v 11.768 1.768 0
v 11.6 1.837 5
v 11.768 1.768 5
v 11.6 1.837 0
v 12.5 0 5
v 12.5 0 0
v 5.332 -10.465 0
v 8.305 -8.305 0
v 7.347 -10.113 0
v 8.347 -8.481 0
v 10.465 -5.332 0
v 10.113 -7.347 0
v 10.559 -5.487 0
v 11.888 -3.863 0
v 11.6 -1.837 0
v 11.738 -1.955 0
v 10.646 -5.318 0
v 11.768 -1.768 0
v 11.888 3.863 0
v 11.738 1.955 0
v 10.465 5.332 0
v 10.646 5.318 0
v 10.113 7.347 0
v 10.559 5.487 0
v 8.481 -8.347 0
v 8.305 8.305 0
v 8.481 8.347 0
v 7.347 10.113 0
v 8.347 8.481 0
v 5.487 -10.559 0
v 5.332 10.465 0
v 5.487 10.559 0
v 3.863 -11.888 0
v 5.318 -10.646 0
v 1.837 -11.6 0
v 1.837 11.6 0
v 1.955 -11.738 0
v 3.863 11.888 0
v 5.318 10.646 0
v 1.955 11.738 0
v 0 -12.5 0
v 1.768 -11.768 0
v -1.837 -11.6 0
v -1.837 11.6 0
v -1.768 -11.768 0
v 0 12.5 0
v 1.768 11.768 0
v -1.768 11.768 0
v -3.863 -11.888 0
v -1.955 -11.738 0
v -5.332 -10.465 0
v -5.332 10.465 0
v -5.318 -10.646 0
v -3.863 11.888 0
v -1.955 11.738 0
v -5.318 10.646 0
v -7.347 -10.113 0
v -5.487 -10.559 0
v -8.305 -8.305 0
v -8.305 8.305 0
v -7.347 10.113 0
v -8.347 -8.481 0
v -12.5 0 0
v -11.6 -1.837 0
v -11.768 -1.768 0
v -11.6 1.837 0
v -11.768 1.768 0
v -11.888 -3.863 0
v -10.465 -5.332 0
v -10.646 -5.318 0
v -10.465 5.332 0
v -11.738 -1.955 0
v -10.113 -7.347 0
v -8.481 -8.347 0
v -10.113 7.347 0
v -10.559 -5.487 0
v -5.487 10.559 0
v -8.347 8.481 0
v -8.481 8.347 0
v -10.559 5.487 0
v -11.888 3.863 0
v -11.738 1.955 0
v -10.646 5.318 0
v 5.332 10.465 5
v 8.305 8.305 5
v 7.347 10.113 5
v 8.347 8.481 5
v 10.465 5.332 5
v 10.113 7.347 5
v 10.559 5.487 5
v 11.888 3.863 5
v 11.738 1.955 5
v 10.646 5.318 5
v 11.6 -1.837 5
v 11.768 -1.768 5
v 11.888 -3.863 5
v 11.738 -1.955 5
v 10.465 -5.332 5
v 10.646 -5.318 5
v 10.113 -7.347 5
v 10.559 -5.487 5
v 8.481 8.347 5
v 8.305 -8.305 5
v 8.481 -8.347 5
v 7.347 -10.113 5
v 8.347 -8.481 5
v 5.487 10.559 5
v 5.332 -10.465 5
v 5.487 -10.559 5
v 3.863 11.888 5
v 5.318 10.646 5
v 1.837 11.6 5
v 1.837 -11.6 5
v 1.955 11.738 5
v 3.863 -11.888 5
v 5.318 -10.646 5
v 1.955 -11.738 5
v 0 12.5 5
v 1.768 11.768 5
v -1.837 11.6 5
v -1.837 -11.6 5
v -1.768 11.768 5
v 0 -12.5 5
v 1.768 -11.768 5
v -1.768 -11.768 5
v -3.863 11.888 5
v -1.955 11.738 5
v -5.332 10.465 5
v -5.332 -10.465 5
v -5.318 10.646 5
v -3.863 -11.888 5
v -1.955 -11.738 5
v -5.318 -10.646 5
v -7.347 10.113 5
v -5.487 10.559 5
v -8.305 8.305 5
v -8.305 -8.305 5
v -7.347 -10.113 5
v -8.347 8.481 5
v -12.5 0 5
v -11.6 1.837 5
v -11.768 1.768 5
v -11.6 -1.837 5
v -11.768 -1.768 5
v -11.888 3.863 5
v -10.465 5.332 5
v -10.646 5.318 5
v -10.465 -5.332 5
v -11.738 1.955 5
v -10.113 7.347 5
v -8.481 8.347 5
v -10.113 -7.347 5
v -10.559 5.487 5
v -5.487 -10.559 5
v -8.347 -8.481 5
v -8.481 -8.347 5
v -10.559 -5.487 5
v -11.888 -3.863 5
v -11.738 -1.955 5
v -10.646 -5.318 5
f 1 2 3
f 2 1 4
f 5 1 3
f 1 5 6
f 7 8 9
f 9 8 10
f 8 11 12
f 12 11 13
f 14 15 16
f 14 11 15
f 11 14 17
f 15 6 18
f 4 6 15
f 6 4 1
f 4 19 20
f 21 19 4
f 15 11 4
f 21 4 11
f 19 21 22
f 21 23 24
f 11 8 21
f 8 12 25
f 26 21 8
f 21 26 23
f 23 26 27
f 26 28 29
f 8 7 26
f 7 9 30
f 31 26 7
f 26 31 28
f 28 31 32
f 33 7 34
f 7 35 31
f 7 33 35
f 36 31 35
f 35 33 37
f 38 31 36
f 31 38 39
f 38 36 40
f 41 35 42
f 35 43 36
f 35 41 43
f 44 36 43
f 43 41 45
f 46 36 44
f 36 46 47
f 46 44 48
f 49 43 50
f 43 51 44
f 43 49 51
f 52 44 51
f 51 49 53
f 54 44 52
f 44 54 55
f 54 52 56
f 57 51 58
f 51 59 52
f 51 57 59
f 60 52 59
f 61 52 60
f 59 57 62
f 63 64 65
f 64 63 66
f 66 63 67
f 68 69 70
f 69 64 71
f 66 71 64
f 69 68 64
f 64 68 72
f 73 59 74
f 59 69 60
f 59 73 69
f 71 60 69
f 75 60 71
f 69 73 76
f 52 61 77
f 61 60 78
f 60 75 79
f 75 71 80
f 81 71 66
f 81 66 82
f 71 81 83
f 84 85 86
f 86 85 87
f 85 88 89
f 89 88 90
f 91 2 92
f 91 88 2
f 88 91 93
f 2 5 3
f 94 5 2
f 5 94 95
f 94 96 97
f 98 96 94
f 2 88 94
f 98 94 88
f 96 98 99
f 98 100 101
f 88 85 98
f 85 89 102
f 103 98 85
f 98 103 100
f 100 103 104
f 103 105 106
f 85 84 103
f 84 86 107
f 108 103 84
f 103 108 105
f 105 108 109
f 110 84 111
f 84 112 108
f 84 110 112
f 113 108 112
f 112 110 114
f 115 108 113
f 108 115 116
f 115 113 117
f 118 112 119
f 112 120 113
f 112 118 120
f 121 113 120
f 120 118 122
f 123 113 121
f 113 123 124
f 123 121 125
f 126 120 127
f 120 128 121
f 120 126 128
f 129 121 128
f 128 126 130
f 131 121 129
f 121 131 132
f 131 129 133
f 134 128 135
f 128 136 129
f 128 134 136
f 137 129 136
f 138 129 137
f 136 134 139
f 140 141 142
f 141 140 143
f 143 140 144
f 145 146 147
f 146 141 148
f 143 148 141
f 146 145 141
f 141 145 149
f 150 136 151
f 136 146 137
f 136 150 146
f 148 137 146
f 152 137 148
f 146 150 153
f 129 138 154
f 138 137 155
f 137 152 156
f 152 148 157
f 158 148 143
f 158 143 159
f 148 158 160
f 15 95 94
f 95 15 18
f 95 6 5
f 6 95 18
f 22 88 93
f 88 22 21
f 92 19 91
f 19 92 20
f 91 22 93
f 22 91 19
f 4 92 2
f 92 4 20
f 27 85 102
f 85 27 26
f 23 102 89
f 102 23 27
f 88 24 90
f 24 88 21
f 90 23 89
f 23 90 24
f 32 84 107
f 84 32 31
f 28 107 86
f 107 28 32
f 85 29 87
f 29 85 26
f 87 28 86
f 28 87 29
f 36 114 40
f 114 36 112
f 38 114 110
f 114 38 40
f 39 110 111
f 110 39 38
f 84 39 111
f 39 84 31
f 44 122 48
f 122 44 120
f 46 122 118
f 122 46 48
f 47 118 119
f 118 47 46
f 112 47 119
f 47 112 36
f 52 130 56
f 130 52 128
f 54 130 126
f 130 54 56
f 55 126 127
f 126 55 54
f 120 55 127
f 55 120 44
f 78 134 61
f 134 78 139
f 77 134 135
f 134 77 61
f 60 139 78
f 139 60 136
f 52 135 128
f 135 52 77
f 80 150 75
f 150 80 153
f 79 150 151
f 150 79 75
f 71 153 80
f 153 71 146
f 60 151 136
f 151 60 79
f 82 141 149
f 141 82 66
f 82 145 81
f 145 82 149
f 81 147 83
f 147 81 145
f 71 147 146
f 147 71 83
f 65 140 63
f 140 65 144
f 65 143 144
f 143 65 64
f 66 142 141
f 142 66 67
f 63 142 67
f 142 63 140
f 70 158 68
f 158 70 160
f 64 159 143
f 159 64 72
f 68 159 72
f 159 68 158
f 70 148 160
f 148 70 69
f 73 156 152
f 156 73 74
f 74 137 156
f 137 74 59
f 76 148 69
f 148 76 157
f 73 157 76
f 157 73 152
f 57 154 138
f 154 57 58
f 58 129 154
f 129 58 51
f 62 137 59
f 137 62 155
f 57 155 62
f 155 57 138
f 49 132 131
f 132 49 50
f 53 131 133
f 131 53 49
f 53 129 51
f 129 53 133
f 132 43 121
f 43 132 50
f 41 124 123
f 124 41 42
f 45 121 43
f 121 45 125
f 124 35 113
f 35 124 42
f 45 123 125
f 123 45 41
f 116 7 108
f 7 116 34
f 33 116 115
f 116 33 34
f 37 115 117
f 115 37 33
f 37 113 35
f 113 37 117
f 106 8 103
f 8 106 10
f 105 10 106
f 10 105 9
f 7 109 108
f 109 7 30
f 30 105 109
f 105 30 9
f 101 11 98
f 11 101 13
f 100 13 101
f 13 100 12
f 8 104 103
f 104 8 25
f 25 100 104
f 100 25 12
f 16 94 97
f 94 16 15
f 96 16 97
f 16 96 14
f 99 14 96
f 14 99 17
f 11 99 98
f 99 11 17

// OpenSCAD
// Simple gear example
module gear(teeth = 20, radius = 10, thickness = 5) {
    cylinder(h = thickness, r = radius, $fn = teeth * 2);
    for (i = [0:teeth-1]) {
        rotate([0, 0, i * 360 / teeth])
        translate([radius, 0, 0])
        cylinder(h = thickness, r = radius / 4, $fn = 8);
    }
}

gear();
